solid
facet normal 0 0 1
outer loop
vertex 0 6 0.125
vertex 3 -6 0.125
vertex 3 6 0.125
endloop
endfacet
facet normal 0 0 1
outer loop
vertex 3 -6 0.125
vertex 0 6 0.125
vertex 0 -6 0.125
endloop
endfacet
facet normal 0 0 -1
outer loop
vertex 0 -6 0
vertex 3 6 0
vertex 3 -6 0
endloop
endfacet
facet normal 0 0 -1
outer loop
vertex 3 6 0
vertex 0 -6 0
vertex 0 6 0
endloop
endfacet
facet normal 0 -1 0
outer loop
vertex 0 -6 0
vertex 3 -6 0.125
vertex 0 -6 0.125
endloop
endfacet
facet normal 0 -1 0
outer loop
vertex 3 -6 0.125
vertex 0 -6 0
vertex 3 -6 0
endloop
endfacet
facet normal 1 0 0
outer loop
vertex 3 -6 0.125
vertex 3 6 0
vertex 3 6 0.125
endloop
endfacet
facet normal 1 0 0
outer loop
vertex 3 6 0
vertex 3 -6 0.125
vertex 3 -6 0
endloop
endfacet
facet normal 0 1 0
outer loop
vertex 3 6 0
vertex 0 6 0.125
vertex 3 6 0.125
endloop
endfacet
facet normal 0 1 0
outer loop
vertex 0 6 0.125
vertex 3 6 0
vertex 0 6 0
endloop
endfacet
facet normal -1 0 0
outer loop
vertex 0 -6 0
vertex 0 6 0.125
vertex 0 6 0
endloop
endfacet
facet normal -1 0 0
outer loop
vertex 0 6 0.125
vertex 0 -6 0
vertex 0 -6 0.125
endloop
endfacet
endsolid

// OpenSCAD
module wing() {
  translate([0,-6,0])
  cube([3,12,1/8]);
}

  
wing();
